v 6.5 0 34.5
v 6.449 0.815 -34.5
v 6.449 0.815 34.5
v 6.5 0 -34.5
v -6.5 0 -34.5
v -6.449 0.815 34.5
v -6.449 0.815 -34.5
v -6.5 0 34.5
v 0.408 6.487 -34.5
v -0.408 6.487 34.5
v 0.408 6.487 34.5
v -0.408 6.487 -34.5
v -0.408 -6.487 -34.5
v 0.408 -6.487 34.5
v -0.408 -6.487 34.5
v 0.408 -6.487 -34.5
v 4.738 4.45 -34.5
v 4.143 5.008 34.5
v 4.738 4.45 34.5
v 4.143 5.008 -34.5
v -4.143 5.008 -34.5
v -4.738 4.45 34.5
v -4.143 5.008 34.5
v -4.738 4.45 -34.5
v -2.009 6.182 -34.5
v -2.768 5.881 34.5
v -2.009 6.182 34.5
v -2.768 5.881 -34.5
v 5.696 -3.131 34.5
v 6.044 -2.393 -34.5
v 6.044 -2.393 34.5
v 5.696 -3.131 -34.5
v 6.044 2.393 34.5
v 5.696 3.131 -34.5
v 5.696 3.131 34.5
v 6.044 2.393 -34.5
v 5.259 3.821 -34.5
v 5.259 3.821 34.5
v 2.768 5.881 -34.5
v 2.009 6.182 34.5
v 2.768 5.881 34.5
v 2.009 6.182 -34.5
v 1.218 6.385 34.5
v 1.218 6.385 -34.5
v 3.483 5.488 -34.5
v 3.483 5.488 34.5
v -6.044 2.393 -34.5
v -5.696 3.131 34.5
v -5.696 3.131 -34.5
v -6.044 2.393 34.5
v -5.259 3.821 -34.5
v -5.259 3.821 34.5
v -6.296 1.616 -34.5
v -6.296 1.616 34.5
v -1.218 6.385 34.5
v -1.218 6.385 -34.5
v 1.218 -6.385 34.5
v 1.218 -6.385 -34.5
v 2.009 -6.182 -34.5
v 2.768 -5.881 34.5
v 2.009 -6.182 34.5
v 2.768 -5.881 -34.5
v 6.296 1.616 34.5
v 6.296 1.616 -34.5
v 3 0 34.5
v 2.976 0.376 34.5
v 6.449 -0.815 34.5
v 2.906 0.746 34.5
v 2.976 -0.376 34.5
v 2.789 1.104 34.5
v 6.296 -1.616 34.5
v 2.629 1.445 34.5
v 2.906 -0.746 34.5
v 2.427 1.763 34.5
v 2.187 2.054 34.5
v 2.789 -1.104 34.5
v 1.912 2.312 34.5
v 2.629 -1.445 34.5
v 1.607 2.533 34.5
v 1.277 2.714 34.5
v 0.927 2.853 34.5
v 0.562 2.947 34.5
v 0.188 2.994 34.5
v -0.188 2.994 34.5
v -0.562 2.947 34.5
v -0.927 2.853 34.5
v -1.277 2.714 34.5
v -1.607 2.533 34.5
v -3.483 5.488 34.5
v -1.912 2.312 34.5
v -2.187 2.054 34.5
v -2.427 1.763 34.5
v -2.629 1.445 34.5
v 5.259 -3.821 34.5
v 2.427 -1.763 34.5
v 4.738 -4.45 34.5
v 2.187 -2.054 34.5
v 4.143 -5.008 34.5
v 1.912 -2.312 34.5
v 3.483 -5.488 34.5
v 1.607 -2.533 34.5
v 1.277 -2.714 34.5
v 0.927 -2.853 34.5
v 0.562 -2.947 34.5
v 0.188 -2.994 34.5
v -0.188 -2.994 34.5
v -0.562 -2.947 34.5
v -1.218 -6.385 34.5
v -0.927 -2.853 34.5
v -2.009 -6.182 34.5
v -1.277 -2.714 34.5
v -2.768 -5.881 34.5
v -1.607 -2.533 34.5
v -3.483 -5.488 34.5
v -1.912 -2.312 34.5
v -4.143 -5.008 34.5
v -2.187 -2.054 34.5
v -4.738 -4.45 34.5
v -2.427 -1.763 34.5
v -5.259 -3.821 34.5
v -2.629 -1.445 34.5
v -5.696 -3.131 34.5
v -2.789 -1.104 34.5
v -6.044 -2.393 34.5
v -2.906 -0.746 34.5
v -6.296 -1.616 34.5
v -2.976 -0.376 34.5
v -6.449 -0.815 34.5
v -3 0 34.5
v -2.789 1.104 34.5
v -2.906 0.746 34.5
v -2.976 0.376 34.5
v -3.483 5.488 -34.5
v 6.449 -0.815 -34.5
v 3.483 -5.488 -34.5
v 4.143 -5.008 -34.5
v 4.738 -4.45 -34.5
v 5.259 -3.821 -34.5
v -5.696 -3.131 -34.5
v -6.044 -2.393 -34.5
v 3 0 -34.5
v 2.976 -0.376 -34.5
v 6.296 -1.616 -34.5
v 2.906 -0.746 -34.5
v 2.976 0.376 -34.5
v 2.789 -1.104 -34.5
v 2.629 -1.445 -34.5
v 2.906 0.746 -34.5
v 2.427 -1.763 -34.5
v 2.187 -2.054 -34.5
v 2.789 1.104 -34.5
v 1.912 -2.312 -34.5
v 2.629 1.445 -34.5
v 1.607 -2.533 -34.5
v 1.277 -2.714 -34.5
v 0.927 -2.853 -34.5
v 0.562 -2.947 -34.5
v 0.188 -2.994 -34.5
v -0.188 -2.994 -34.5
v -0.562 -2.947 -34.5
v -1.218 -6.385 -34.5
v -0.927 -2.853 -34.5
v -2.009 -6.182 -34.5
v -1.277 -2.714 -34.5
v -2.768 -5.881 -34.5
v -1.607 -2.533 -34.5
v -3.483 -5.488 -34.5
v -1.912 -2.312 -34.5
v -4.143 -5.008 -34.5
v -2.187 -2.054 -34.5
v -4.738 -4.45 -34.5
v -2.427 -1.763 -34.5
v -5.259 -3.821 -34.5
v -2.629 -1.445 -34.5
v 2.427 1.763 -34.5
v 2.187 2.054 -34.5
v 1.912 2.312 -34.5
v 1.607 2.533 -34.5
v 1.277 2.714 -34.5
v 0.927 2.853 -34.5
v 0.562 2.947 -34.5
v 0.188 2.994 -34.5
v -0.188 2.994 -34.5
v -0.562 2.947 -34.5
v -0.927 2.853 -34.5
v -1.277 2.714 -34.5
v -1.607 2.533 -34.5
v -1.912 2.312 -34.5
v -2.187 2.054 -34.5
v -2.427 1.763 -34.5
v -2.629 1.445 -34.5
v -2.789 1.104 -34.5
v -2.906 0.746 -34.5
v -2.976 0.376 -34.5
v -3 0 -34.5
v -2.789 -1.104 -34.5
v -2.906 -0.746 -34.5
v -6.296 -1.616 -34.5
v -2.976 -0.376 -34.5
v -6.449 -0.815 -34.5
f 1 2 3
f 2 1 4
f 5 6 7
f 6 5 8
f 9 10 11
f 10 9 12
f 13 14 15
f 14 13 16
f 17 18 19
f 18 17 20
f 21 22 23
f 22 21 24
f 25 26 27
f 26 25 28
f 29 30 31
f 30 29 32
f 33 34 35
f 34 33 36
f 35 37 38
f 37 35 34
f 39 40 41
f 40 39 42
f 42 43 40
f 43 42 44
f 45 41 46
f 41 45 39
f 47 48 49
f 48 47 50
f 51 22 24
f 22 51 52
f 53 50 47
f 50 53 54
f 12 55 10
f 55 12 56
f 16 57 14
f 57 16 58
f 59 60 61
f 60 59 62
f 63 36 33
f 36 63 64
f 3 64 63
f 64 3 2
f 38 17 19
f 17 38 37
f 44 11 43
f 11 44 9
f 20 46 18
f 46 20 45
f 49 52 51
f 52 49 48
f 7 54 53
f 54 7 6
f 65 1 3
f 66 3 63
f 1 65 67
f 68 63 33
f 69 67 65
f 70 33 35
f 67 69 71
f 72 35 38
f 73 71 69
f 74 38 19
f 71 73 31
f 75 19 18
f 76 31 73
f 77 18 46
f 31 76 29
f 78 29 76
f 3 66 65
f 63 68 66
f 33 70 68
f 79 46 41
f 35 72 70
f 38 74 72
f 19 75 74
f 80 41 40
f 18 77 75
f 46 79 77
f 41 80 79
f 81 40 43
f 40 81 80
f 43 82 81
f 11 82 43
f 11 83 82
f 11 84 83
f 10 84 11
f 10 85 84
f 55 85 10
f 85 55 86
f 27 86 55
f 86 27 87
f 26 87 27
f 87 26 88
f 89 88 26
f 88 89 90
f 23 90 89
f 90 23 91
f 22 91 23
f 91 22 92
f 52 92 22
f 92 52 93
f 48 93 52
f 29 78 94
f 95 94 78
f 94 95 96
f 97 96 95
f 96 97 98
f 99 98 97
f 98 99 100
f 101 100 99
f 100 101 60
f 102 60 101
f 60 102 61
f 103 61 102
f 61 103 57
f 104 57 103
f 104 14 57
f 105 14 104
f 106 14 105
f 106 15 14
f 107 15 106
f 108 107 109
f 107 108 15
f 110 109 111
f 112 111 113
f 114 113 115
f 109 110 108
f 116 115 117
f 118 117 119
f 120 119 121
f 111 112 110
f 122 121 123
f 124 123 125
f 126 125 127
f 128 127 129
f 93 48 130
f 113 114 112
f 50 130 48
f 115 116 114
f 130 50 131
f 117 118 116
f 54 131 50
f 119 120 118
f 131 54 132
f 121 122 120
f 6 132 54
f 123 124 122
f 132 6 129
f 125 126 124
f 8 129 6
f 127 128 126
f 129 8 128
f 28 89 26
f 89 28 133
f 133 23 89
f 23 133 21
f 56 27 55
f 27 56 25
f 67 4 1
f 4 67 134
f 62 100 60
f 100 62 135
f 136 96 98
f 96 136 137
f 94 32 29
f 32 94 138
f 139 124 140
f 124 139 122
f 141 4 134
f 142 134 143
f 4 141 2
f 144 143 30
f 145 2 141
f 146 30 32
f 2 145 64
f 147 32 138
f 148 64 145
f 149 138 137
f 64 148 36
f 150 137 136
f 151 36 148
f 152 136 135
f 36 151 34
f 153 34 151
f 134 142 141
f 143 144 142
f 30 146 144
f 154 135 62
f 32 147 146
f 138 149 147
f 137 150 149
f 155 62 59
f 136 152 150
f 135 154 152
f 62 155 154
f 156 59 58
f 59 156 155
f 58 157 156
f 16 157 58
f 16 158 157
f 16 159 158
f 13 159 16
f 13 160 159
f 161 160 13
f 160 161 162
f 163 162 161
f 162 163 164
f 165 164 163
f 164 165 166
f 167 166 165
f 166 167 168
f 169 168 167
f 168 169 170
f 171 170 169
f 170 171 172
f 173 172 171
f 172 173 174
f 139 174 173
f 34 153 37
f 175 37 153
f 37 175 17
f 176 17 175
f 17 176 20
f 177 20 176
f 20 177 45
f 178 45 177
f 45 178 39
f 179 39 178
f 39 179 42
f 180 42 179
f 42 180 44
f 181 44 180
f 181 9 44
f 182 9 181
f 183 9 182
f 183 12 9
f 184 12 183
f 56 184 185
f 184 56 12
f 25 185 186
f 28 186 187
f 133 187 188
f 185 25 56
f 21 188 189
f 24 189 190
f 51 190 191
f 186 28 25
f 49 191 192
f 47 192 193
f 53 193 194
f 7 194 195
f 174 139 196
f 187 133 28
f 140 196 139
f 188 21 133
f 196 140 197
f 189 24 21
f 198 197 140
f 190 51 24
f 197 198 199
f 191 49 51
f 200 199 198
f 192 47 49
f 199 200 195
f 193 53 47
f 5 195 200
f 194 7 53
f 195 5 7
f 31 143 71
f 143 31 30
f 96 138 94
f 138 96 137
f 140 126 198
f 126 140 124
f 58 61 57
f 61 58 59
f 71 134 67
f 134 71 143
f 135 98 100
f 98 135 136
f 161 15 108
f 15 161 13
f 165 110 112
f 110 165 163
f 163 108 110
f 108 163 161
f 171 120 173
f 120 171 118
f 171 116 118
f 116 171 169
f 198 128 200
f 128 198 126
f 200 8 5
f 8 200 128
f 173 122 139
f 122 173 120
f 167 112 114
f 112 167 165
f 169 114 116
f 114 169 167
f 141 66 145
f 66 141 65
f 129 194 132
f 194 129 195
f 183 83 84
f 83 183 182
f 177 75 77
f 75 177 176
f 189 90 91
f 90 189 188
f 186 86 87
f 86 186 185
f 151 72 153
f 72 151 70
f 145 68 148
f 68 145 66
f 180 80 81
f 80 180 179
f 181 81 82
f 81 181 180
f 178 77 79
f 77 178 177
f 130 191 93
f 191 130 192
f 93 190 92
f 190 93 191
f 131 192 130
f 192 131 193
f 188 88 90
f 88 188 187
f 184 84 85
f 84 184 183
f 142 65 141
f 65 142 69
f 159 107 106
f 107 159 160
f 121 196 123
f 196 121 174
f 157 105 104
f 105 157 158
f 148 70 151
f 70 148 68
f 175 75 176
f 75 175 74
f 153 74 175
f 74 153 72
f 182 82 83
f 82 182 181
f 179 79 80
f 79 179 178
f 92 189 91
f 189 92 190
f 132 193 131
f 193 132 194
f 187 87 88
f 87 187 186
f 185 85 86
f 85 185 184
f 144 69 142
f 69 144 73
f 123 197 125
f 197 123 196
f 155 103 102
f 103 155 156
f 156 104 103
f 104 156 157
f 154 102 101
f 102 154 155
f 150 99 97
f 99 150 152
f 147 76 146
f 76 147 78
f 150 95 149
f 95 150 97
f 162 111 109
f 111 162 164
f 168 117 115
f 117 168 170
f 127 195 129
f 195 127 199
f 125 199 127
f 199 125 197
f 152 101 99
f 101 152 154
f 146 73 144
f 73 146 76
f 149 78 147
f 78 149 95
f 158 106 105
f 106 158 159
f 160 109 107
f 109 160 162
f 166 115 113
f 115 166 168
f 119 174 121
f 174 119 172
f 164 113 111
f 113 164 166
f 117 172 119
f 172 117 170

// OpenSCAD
$fn = 50;


difference() {
	union() {
		translate(v = [0, 0, -34.5000000000]) {
			cylinder(h = 69, r = 6.5000000000);
		}
	}
	union() {
		translate(v = [0, 0, -100.0000000000]) {
			cylinder(h = 200, r = 3);
		}
	}
}
